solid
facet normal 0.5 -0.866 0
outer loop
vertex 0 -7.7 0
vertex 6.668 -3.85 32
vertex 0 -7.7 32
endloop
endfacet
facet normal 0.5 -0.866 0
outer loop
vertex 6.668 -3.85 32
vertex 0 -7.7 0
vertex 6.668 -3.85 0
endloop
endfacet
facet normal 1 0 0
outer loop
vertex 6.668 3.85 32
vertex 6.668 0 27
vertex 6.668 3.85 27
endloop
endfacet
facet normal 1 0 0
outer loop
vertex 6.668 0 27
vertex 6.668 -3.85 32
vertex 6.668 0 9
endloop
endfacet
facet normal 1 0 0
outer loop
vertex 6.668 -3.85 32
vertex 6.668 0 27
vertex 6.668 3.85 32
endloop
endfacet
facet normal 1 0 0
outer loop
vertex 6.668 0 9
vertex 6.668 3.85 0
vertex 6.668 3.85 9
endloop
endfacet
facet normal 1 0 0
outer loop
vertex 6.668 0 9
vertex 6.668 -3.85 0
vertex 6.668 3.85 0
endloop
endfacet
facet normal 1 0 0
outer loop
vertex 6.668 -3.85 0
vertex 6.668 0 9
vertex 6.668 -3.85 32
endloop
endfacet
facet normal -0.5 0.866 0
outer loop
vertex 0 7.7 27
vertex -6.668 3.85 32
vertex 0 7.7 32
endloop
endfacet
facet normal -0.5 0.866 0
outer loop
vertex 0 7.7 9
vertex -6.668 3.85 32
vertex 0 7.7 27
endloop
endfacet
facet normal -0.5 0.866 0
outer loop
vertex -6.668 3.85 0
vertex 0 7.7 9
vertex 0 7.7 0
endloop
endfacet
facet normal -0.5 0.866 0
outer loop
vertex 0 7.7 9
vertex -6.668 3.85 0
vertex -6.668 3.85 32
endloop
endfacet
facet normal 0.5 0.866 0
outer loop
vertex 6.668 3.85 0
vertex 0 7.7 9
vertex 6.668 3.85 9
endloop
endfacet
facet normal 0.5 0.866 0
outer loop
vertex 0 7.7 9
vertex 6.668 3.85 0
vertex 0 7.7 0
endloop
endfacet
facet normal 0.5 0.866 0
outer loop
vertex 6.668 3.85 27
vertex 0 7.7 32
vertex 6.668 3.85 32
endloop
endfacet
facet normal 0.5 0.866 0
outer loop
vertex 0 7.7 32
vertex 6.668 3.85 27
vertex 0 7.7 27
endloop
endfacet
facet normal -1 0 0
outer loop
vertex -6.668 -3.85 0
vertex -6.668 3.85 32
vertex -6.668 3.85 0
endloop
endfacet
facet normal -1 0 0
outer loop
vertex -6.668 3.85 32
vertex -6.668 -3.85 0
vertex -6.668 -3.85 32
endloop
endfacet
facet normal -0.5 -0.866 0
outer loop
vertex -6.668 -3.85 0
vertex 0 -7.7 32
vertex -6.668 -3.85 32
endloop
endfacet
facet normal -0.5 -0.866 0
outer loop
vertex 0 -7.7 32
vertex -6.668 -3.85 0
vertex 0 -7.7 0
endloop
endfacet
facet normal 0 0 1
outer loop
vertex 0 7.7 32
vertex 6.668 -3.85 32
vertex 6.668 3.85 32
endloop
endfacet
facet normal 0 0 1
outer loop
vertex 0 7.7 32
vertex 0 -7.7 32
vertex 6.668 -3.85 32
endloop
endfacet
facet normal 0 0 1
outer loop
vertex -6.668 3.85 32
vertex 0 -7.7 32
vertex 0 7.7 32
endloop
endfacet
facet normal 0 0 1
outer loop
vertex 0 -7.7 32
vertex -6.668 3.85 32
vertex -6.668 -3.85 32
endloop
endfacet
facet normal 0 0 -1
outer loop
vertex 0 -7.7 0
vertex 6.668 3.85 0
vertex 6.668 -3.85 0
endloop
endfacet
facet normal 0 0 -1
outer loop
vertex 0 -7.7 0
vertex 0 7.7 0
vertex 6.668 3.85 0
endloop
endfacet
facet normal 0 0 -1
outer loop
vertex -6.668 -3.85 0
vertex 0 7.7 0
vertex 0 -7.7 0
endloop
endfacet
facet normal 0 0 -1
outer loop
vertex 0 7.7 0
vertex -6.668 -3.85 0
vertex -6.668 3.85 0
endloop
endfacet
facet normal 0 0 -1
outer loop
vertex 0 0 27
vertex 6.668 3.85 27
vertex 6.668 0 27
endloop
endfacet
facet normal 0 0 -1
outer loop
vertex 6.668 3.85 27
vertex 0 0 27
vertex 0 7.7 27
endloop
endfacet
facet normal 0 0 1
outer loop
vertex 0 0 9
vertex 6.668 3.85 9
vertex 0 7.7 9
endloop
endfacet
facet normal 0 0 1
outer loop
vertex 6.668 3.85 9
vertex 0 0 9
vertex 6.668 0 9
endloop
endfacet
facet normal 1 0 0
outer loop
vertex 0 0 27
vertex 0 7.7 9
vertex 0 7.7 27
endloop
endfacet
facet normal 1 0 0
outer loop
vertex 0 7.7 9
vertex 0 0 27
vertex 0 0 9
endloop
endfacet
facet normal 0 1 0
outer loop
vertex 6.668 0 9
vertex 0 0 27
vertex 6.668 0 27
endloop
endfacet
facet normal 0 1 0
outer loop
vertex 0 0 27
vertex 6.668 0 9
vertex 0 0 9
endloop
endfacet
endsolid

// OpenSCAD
length_inner = 9;
length_outer = 5;
length_center = 18;
length_total = length_center+length_outer+length_inner;
inner_diametr = 15.4;

deep_offset = -3;

difference() {
translate([0,0,length_total/2]) {
    rotate([0,0,30]) {
  cylinder(r=inner_diametr/2, h=length_total, center=true, $fn=6);
    }
}


translate([40/2,40/2,length_center/2+length_inner]) {
  cube([40, 40, length_center], center=true);
}


}
